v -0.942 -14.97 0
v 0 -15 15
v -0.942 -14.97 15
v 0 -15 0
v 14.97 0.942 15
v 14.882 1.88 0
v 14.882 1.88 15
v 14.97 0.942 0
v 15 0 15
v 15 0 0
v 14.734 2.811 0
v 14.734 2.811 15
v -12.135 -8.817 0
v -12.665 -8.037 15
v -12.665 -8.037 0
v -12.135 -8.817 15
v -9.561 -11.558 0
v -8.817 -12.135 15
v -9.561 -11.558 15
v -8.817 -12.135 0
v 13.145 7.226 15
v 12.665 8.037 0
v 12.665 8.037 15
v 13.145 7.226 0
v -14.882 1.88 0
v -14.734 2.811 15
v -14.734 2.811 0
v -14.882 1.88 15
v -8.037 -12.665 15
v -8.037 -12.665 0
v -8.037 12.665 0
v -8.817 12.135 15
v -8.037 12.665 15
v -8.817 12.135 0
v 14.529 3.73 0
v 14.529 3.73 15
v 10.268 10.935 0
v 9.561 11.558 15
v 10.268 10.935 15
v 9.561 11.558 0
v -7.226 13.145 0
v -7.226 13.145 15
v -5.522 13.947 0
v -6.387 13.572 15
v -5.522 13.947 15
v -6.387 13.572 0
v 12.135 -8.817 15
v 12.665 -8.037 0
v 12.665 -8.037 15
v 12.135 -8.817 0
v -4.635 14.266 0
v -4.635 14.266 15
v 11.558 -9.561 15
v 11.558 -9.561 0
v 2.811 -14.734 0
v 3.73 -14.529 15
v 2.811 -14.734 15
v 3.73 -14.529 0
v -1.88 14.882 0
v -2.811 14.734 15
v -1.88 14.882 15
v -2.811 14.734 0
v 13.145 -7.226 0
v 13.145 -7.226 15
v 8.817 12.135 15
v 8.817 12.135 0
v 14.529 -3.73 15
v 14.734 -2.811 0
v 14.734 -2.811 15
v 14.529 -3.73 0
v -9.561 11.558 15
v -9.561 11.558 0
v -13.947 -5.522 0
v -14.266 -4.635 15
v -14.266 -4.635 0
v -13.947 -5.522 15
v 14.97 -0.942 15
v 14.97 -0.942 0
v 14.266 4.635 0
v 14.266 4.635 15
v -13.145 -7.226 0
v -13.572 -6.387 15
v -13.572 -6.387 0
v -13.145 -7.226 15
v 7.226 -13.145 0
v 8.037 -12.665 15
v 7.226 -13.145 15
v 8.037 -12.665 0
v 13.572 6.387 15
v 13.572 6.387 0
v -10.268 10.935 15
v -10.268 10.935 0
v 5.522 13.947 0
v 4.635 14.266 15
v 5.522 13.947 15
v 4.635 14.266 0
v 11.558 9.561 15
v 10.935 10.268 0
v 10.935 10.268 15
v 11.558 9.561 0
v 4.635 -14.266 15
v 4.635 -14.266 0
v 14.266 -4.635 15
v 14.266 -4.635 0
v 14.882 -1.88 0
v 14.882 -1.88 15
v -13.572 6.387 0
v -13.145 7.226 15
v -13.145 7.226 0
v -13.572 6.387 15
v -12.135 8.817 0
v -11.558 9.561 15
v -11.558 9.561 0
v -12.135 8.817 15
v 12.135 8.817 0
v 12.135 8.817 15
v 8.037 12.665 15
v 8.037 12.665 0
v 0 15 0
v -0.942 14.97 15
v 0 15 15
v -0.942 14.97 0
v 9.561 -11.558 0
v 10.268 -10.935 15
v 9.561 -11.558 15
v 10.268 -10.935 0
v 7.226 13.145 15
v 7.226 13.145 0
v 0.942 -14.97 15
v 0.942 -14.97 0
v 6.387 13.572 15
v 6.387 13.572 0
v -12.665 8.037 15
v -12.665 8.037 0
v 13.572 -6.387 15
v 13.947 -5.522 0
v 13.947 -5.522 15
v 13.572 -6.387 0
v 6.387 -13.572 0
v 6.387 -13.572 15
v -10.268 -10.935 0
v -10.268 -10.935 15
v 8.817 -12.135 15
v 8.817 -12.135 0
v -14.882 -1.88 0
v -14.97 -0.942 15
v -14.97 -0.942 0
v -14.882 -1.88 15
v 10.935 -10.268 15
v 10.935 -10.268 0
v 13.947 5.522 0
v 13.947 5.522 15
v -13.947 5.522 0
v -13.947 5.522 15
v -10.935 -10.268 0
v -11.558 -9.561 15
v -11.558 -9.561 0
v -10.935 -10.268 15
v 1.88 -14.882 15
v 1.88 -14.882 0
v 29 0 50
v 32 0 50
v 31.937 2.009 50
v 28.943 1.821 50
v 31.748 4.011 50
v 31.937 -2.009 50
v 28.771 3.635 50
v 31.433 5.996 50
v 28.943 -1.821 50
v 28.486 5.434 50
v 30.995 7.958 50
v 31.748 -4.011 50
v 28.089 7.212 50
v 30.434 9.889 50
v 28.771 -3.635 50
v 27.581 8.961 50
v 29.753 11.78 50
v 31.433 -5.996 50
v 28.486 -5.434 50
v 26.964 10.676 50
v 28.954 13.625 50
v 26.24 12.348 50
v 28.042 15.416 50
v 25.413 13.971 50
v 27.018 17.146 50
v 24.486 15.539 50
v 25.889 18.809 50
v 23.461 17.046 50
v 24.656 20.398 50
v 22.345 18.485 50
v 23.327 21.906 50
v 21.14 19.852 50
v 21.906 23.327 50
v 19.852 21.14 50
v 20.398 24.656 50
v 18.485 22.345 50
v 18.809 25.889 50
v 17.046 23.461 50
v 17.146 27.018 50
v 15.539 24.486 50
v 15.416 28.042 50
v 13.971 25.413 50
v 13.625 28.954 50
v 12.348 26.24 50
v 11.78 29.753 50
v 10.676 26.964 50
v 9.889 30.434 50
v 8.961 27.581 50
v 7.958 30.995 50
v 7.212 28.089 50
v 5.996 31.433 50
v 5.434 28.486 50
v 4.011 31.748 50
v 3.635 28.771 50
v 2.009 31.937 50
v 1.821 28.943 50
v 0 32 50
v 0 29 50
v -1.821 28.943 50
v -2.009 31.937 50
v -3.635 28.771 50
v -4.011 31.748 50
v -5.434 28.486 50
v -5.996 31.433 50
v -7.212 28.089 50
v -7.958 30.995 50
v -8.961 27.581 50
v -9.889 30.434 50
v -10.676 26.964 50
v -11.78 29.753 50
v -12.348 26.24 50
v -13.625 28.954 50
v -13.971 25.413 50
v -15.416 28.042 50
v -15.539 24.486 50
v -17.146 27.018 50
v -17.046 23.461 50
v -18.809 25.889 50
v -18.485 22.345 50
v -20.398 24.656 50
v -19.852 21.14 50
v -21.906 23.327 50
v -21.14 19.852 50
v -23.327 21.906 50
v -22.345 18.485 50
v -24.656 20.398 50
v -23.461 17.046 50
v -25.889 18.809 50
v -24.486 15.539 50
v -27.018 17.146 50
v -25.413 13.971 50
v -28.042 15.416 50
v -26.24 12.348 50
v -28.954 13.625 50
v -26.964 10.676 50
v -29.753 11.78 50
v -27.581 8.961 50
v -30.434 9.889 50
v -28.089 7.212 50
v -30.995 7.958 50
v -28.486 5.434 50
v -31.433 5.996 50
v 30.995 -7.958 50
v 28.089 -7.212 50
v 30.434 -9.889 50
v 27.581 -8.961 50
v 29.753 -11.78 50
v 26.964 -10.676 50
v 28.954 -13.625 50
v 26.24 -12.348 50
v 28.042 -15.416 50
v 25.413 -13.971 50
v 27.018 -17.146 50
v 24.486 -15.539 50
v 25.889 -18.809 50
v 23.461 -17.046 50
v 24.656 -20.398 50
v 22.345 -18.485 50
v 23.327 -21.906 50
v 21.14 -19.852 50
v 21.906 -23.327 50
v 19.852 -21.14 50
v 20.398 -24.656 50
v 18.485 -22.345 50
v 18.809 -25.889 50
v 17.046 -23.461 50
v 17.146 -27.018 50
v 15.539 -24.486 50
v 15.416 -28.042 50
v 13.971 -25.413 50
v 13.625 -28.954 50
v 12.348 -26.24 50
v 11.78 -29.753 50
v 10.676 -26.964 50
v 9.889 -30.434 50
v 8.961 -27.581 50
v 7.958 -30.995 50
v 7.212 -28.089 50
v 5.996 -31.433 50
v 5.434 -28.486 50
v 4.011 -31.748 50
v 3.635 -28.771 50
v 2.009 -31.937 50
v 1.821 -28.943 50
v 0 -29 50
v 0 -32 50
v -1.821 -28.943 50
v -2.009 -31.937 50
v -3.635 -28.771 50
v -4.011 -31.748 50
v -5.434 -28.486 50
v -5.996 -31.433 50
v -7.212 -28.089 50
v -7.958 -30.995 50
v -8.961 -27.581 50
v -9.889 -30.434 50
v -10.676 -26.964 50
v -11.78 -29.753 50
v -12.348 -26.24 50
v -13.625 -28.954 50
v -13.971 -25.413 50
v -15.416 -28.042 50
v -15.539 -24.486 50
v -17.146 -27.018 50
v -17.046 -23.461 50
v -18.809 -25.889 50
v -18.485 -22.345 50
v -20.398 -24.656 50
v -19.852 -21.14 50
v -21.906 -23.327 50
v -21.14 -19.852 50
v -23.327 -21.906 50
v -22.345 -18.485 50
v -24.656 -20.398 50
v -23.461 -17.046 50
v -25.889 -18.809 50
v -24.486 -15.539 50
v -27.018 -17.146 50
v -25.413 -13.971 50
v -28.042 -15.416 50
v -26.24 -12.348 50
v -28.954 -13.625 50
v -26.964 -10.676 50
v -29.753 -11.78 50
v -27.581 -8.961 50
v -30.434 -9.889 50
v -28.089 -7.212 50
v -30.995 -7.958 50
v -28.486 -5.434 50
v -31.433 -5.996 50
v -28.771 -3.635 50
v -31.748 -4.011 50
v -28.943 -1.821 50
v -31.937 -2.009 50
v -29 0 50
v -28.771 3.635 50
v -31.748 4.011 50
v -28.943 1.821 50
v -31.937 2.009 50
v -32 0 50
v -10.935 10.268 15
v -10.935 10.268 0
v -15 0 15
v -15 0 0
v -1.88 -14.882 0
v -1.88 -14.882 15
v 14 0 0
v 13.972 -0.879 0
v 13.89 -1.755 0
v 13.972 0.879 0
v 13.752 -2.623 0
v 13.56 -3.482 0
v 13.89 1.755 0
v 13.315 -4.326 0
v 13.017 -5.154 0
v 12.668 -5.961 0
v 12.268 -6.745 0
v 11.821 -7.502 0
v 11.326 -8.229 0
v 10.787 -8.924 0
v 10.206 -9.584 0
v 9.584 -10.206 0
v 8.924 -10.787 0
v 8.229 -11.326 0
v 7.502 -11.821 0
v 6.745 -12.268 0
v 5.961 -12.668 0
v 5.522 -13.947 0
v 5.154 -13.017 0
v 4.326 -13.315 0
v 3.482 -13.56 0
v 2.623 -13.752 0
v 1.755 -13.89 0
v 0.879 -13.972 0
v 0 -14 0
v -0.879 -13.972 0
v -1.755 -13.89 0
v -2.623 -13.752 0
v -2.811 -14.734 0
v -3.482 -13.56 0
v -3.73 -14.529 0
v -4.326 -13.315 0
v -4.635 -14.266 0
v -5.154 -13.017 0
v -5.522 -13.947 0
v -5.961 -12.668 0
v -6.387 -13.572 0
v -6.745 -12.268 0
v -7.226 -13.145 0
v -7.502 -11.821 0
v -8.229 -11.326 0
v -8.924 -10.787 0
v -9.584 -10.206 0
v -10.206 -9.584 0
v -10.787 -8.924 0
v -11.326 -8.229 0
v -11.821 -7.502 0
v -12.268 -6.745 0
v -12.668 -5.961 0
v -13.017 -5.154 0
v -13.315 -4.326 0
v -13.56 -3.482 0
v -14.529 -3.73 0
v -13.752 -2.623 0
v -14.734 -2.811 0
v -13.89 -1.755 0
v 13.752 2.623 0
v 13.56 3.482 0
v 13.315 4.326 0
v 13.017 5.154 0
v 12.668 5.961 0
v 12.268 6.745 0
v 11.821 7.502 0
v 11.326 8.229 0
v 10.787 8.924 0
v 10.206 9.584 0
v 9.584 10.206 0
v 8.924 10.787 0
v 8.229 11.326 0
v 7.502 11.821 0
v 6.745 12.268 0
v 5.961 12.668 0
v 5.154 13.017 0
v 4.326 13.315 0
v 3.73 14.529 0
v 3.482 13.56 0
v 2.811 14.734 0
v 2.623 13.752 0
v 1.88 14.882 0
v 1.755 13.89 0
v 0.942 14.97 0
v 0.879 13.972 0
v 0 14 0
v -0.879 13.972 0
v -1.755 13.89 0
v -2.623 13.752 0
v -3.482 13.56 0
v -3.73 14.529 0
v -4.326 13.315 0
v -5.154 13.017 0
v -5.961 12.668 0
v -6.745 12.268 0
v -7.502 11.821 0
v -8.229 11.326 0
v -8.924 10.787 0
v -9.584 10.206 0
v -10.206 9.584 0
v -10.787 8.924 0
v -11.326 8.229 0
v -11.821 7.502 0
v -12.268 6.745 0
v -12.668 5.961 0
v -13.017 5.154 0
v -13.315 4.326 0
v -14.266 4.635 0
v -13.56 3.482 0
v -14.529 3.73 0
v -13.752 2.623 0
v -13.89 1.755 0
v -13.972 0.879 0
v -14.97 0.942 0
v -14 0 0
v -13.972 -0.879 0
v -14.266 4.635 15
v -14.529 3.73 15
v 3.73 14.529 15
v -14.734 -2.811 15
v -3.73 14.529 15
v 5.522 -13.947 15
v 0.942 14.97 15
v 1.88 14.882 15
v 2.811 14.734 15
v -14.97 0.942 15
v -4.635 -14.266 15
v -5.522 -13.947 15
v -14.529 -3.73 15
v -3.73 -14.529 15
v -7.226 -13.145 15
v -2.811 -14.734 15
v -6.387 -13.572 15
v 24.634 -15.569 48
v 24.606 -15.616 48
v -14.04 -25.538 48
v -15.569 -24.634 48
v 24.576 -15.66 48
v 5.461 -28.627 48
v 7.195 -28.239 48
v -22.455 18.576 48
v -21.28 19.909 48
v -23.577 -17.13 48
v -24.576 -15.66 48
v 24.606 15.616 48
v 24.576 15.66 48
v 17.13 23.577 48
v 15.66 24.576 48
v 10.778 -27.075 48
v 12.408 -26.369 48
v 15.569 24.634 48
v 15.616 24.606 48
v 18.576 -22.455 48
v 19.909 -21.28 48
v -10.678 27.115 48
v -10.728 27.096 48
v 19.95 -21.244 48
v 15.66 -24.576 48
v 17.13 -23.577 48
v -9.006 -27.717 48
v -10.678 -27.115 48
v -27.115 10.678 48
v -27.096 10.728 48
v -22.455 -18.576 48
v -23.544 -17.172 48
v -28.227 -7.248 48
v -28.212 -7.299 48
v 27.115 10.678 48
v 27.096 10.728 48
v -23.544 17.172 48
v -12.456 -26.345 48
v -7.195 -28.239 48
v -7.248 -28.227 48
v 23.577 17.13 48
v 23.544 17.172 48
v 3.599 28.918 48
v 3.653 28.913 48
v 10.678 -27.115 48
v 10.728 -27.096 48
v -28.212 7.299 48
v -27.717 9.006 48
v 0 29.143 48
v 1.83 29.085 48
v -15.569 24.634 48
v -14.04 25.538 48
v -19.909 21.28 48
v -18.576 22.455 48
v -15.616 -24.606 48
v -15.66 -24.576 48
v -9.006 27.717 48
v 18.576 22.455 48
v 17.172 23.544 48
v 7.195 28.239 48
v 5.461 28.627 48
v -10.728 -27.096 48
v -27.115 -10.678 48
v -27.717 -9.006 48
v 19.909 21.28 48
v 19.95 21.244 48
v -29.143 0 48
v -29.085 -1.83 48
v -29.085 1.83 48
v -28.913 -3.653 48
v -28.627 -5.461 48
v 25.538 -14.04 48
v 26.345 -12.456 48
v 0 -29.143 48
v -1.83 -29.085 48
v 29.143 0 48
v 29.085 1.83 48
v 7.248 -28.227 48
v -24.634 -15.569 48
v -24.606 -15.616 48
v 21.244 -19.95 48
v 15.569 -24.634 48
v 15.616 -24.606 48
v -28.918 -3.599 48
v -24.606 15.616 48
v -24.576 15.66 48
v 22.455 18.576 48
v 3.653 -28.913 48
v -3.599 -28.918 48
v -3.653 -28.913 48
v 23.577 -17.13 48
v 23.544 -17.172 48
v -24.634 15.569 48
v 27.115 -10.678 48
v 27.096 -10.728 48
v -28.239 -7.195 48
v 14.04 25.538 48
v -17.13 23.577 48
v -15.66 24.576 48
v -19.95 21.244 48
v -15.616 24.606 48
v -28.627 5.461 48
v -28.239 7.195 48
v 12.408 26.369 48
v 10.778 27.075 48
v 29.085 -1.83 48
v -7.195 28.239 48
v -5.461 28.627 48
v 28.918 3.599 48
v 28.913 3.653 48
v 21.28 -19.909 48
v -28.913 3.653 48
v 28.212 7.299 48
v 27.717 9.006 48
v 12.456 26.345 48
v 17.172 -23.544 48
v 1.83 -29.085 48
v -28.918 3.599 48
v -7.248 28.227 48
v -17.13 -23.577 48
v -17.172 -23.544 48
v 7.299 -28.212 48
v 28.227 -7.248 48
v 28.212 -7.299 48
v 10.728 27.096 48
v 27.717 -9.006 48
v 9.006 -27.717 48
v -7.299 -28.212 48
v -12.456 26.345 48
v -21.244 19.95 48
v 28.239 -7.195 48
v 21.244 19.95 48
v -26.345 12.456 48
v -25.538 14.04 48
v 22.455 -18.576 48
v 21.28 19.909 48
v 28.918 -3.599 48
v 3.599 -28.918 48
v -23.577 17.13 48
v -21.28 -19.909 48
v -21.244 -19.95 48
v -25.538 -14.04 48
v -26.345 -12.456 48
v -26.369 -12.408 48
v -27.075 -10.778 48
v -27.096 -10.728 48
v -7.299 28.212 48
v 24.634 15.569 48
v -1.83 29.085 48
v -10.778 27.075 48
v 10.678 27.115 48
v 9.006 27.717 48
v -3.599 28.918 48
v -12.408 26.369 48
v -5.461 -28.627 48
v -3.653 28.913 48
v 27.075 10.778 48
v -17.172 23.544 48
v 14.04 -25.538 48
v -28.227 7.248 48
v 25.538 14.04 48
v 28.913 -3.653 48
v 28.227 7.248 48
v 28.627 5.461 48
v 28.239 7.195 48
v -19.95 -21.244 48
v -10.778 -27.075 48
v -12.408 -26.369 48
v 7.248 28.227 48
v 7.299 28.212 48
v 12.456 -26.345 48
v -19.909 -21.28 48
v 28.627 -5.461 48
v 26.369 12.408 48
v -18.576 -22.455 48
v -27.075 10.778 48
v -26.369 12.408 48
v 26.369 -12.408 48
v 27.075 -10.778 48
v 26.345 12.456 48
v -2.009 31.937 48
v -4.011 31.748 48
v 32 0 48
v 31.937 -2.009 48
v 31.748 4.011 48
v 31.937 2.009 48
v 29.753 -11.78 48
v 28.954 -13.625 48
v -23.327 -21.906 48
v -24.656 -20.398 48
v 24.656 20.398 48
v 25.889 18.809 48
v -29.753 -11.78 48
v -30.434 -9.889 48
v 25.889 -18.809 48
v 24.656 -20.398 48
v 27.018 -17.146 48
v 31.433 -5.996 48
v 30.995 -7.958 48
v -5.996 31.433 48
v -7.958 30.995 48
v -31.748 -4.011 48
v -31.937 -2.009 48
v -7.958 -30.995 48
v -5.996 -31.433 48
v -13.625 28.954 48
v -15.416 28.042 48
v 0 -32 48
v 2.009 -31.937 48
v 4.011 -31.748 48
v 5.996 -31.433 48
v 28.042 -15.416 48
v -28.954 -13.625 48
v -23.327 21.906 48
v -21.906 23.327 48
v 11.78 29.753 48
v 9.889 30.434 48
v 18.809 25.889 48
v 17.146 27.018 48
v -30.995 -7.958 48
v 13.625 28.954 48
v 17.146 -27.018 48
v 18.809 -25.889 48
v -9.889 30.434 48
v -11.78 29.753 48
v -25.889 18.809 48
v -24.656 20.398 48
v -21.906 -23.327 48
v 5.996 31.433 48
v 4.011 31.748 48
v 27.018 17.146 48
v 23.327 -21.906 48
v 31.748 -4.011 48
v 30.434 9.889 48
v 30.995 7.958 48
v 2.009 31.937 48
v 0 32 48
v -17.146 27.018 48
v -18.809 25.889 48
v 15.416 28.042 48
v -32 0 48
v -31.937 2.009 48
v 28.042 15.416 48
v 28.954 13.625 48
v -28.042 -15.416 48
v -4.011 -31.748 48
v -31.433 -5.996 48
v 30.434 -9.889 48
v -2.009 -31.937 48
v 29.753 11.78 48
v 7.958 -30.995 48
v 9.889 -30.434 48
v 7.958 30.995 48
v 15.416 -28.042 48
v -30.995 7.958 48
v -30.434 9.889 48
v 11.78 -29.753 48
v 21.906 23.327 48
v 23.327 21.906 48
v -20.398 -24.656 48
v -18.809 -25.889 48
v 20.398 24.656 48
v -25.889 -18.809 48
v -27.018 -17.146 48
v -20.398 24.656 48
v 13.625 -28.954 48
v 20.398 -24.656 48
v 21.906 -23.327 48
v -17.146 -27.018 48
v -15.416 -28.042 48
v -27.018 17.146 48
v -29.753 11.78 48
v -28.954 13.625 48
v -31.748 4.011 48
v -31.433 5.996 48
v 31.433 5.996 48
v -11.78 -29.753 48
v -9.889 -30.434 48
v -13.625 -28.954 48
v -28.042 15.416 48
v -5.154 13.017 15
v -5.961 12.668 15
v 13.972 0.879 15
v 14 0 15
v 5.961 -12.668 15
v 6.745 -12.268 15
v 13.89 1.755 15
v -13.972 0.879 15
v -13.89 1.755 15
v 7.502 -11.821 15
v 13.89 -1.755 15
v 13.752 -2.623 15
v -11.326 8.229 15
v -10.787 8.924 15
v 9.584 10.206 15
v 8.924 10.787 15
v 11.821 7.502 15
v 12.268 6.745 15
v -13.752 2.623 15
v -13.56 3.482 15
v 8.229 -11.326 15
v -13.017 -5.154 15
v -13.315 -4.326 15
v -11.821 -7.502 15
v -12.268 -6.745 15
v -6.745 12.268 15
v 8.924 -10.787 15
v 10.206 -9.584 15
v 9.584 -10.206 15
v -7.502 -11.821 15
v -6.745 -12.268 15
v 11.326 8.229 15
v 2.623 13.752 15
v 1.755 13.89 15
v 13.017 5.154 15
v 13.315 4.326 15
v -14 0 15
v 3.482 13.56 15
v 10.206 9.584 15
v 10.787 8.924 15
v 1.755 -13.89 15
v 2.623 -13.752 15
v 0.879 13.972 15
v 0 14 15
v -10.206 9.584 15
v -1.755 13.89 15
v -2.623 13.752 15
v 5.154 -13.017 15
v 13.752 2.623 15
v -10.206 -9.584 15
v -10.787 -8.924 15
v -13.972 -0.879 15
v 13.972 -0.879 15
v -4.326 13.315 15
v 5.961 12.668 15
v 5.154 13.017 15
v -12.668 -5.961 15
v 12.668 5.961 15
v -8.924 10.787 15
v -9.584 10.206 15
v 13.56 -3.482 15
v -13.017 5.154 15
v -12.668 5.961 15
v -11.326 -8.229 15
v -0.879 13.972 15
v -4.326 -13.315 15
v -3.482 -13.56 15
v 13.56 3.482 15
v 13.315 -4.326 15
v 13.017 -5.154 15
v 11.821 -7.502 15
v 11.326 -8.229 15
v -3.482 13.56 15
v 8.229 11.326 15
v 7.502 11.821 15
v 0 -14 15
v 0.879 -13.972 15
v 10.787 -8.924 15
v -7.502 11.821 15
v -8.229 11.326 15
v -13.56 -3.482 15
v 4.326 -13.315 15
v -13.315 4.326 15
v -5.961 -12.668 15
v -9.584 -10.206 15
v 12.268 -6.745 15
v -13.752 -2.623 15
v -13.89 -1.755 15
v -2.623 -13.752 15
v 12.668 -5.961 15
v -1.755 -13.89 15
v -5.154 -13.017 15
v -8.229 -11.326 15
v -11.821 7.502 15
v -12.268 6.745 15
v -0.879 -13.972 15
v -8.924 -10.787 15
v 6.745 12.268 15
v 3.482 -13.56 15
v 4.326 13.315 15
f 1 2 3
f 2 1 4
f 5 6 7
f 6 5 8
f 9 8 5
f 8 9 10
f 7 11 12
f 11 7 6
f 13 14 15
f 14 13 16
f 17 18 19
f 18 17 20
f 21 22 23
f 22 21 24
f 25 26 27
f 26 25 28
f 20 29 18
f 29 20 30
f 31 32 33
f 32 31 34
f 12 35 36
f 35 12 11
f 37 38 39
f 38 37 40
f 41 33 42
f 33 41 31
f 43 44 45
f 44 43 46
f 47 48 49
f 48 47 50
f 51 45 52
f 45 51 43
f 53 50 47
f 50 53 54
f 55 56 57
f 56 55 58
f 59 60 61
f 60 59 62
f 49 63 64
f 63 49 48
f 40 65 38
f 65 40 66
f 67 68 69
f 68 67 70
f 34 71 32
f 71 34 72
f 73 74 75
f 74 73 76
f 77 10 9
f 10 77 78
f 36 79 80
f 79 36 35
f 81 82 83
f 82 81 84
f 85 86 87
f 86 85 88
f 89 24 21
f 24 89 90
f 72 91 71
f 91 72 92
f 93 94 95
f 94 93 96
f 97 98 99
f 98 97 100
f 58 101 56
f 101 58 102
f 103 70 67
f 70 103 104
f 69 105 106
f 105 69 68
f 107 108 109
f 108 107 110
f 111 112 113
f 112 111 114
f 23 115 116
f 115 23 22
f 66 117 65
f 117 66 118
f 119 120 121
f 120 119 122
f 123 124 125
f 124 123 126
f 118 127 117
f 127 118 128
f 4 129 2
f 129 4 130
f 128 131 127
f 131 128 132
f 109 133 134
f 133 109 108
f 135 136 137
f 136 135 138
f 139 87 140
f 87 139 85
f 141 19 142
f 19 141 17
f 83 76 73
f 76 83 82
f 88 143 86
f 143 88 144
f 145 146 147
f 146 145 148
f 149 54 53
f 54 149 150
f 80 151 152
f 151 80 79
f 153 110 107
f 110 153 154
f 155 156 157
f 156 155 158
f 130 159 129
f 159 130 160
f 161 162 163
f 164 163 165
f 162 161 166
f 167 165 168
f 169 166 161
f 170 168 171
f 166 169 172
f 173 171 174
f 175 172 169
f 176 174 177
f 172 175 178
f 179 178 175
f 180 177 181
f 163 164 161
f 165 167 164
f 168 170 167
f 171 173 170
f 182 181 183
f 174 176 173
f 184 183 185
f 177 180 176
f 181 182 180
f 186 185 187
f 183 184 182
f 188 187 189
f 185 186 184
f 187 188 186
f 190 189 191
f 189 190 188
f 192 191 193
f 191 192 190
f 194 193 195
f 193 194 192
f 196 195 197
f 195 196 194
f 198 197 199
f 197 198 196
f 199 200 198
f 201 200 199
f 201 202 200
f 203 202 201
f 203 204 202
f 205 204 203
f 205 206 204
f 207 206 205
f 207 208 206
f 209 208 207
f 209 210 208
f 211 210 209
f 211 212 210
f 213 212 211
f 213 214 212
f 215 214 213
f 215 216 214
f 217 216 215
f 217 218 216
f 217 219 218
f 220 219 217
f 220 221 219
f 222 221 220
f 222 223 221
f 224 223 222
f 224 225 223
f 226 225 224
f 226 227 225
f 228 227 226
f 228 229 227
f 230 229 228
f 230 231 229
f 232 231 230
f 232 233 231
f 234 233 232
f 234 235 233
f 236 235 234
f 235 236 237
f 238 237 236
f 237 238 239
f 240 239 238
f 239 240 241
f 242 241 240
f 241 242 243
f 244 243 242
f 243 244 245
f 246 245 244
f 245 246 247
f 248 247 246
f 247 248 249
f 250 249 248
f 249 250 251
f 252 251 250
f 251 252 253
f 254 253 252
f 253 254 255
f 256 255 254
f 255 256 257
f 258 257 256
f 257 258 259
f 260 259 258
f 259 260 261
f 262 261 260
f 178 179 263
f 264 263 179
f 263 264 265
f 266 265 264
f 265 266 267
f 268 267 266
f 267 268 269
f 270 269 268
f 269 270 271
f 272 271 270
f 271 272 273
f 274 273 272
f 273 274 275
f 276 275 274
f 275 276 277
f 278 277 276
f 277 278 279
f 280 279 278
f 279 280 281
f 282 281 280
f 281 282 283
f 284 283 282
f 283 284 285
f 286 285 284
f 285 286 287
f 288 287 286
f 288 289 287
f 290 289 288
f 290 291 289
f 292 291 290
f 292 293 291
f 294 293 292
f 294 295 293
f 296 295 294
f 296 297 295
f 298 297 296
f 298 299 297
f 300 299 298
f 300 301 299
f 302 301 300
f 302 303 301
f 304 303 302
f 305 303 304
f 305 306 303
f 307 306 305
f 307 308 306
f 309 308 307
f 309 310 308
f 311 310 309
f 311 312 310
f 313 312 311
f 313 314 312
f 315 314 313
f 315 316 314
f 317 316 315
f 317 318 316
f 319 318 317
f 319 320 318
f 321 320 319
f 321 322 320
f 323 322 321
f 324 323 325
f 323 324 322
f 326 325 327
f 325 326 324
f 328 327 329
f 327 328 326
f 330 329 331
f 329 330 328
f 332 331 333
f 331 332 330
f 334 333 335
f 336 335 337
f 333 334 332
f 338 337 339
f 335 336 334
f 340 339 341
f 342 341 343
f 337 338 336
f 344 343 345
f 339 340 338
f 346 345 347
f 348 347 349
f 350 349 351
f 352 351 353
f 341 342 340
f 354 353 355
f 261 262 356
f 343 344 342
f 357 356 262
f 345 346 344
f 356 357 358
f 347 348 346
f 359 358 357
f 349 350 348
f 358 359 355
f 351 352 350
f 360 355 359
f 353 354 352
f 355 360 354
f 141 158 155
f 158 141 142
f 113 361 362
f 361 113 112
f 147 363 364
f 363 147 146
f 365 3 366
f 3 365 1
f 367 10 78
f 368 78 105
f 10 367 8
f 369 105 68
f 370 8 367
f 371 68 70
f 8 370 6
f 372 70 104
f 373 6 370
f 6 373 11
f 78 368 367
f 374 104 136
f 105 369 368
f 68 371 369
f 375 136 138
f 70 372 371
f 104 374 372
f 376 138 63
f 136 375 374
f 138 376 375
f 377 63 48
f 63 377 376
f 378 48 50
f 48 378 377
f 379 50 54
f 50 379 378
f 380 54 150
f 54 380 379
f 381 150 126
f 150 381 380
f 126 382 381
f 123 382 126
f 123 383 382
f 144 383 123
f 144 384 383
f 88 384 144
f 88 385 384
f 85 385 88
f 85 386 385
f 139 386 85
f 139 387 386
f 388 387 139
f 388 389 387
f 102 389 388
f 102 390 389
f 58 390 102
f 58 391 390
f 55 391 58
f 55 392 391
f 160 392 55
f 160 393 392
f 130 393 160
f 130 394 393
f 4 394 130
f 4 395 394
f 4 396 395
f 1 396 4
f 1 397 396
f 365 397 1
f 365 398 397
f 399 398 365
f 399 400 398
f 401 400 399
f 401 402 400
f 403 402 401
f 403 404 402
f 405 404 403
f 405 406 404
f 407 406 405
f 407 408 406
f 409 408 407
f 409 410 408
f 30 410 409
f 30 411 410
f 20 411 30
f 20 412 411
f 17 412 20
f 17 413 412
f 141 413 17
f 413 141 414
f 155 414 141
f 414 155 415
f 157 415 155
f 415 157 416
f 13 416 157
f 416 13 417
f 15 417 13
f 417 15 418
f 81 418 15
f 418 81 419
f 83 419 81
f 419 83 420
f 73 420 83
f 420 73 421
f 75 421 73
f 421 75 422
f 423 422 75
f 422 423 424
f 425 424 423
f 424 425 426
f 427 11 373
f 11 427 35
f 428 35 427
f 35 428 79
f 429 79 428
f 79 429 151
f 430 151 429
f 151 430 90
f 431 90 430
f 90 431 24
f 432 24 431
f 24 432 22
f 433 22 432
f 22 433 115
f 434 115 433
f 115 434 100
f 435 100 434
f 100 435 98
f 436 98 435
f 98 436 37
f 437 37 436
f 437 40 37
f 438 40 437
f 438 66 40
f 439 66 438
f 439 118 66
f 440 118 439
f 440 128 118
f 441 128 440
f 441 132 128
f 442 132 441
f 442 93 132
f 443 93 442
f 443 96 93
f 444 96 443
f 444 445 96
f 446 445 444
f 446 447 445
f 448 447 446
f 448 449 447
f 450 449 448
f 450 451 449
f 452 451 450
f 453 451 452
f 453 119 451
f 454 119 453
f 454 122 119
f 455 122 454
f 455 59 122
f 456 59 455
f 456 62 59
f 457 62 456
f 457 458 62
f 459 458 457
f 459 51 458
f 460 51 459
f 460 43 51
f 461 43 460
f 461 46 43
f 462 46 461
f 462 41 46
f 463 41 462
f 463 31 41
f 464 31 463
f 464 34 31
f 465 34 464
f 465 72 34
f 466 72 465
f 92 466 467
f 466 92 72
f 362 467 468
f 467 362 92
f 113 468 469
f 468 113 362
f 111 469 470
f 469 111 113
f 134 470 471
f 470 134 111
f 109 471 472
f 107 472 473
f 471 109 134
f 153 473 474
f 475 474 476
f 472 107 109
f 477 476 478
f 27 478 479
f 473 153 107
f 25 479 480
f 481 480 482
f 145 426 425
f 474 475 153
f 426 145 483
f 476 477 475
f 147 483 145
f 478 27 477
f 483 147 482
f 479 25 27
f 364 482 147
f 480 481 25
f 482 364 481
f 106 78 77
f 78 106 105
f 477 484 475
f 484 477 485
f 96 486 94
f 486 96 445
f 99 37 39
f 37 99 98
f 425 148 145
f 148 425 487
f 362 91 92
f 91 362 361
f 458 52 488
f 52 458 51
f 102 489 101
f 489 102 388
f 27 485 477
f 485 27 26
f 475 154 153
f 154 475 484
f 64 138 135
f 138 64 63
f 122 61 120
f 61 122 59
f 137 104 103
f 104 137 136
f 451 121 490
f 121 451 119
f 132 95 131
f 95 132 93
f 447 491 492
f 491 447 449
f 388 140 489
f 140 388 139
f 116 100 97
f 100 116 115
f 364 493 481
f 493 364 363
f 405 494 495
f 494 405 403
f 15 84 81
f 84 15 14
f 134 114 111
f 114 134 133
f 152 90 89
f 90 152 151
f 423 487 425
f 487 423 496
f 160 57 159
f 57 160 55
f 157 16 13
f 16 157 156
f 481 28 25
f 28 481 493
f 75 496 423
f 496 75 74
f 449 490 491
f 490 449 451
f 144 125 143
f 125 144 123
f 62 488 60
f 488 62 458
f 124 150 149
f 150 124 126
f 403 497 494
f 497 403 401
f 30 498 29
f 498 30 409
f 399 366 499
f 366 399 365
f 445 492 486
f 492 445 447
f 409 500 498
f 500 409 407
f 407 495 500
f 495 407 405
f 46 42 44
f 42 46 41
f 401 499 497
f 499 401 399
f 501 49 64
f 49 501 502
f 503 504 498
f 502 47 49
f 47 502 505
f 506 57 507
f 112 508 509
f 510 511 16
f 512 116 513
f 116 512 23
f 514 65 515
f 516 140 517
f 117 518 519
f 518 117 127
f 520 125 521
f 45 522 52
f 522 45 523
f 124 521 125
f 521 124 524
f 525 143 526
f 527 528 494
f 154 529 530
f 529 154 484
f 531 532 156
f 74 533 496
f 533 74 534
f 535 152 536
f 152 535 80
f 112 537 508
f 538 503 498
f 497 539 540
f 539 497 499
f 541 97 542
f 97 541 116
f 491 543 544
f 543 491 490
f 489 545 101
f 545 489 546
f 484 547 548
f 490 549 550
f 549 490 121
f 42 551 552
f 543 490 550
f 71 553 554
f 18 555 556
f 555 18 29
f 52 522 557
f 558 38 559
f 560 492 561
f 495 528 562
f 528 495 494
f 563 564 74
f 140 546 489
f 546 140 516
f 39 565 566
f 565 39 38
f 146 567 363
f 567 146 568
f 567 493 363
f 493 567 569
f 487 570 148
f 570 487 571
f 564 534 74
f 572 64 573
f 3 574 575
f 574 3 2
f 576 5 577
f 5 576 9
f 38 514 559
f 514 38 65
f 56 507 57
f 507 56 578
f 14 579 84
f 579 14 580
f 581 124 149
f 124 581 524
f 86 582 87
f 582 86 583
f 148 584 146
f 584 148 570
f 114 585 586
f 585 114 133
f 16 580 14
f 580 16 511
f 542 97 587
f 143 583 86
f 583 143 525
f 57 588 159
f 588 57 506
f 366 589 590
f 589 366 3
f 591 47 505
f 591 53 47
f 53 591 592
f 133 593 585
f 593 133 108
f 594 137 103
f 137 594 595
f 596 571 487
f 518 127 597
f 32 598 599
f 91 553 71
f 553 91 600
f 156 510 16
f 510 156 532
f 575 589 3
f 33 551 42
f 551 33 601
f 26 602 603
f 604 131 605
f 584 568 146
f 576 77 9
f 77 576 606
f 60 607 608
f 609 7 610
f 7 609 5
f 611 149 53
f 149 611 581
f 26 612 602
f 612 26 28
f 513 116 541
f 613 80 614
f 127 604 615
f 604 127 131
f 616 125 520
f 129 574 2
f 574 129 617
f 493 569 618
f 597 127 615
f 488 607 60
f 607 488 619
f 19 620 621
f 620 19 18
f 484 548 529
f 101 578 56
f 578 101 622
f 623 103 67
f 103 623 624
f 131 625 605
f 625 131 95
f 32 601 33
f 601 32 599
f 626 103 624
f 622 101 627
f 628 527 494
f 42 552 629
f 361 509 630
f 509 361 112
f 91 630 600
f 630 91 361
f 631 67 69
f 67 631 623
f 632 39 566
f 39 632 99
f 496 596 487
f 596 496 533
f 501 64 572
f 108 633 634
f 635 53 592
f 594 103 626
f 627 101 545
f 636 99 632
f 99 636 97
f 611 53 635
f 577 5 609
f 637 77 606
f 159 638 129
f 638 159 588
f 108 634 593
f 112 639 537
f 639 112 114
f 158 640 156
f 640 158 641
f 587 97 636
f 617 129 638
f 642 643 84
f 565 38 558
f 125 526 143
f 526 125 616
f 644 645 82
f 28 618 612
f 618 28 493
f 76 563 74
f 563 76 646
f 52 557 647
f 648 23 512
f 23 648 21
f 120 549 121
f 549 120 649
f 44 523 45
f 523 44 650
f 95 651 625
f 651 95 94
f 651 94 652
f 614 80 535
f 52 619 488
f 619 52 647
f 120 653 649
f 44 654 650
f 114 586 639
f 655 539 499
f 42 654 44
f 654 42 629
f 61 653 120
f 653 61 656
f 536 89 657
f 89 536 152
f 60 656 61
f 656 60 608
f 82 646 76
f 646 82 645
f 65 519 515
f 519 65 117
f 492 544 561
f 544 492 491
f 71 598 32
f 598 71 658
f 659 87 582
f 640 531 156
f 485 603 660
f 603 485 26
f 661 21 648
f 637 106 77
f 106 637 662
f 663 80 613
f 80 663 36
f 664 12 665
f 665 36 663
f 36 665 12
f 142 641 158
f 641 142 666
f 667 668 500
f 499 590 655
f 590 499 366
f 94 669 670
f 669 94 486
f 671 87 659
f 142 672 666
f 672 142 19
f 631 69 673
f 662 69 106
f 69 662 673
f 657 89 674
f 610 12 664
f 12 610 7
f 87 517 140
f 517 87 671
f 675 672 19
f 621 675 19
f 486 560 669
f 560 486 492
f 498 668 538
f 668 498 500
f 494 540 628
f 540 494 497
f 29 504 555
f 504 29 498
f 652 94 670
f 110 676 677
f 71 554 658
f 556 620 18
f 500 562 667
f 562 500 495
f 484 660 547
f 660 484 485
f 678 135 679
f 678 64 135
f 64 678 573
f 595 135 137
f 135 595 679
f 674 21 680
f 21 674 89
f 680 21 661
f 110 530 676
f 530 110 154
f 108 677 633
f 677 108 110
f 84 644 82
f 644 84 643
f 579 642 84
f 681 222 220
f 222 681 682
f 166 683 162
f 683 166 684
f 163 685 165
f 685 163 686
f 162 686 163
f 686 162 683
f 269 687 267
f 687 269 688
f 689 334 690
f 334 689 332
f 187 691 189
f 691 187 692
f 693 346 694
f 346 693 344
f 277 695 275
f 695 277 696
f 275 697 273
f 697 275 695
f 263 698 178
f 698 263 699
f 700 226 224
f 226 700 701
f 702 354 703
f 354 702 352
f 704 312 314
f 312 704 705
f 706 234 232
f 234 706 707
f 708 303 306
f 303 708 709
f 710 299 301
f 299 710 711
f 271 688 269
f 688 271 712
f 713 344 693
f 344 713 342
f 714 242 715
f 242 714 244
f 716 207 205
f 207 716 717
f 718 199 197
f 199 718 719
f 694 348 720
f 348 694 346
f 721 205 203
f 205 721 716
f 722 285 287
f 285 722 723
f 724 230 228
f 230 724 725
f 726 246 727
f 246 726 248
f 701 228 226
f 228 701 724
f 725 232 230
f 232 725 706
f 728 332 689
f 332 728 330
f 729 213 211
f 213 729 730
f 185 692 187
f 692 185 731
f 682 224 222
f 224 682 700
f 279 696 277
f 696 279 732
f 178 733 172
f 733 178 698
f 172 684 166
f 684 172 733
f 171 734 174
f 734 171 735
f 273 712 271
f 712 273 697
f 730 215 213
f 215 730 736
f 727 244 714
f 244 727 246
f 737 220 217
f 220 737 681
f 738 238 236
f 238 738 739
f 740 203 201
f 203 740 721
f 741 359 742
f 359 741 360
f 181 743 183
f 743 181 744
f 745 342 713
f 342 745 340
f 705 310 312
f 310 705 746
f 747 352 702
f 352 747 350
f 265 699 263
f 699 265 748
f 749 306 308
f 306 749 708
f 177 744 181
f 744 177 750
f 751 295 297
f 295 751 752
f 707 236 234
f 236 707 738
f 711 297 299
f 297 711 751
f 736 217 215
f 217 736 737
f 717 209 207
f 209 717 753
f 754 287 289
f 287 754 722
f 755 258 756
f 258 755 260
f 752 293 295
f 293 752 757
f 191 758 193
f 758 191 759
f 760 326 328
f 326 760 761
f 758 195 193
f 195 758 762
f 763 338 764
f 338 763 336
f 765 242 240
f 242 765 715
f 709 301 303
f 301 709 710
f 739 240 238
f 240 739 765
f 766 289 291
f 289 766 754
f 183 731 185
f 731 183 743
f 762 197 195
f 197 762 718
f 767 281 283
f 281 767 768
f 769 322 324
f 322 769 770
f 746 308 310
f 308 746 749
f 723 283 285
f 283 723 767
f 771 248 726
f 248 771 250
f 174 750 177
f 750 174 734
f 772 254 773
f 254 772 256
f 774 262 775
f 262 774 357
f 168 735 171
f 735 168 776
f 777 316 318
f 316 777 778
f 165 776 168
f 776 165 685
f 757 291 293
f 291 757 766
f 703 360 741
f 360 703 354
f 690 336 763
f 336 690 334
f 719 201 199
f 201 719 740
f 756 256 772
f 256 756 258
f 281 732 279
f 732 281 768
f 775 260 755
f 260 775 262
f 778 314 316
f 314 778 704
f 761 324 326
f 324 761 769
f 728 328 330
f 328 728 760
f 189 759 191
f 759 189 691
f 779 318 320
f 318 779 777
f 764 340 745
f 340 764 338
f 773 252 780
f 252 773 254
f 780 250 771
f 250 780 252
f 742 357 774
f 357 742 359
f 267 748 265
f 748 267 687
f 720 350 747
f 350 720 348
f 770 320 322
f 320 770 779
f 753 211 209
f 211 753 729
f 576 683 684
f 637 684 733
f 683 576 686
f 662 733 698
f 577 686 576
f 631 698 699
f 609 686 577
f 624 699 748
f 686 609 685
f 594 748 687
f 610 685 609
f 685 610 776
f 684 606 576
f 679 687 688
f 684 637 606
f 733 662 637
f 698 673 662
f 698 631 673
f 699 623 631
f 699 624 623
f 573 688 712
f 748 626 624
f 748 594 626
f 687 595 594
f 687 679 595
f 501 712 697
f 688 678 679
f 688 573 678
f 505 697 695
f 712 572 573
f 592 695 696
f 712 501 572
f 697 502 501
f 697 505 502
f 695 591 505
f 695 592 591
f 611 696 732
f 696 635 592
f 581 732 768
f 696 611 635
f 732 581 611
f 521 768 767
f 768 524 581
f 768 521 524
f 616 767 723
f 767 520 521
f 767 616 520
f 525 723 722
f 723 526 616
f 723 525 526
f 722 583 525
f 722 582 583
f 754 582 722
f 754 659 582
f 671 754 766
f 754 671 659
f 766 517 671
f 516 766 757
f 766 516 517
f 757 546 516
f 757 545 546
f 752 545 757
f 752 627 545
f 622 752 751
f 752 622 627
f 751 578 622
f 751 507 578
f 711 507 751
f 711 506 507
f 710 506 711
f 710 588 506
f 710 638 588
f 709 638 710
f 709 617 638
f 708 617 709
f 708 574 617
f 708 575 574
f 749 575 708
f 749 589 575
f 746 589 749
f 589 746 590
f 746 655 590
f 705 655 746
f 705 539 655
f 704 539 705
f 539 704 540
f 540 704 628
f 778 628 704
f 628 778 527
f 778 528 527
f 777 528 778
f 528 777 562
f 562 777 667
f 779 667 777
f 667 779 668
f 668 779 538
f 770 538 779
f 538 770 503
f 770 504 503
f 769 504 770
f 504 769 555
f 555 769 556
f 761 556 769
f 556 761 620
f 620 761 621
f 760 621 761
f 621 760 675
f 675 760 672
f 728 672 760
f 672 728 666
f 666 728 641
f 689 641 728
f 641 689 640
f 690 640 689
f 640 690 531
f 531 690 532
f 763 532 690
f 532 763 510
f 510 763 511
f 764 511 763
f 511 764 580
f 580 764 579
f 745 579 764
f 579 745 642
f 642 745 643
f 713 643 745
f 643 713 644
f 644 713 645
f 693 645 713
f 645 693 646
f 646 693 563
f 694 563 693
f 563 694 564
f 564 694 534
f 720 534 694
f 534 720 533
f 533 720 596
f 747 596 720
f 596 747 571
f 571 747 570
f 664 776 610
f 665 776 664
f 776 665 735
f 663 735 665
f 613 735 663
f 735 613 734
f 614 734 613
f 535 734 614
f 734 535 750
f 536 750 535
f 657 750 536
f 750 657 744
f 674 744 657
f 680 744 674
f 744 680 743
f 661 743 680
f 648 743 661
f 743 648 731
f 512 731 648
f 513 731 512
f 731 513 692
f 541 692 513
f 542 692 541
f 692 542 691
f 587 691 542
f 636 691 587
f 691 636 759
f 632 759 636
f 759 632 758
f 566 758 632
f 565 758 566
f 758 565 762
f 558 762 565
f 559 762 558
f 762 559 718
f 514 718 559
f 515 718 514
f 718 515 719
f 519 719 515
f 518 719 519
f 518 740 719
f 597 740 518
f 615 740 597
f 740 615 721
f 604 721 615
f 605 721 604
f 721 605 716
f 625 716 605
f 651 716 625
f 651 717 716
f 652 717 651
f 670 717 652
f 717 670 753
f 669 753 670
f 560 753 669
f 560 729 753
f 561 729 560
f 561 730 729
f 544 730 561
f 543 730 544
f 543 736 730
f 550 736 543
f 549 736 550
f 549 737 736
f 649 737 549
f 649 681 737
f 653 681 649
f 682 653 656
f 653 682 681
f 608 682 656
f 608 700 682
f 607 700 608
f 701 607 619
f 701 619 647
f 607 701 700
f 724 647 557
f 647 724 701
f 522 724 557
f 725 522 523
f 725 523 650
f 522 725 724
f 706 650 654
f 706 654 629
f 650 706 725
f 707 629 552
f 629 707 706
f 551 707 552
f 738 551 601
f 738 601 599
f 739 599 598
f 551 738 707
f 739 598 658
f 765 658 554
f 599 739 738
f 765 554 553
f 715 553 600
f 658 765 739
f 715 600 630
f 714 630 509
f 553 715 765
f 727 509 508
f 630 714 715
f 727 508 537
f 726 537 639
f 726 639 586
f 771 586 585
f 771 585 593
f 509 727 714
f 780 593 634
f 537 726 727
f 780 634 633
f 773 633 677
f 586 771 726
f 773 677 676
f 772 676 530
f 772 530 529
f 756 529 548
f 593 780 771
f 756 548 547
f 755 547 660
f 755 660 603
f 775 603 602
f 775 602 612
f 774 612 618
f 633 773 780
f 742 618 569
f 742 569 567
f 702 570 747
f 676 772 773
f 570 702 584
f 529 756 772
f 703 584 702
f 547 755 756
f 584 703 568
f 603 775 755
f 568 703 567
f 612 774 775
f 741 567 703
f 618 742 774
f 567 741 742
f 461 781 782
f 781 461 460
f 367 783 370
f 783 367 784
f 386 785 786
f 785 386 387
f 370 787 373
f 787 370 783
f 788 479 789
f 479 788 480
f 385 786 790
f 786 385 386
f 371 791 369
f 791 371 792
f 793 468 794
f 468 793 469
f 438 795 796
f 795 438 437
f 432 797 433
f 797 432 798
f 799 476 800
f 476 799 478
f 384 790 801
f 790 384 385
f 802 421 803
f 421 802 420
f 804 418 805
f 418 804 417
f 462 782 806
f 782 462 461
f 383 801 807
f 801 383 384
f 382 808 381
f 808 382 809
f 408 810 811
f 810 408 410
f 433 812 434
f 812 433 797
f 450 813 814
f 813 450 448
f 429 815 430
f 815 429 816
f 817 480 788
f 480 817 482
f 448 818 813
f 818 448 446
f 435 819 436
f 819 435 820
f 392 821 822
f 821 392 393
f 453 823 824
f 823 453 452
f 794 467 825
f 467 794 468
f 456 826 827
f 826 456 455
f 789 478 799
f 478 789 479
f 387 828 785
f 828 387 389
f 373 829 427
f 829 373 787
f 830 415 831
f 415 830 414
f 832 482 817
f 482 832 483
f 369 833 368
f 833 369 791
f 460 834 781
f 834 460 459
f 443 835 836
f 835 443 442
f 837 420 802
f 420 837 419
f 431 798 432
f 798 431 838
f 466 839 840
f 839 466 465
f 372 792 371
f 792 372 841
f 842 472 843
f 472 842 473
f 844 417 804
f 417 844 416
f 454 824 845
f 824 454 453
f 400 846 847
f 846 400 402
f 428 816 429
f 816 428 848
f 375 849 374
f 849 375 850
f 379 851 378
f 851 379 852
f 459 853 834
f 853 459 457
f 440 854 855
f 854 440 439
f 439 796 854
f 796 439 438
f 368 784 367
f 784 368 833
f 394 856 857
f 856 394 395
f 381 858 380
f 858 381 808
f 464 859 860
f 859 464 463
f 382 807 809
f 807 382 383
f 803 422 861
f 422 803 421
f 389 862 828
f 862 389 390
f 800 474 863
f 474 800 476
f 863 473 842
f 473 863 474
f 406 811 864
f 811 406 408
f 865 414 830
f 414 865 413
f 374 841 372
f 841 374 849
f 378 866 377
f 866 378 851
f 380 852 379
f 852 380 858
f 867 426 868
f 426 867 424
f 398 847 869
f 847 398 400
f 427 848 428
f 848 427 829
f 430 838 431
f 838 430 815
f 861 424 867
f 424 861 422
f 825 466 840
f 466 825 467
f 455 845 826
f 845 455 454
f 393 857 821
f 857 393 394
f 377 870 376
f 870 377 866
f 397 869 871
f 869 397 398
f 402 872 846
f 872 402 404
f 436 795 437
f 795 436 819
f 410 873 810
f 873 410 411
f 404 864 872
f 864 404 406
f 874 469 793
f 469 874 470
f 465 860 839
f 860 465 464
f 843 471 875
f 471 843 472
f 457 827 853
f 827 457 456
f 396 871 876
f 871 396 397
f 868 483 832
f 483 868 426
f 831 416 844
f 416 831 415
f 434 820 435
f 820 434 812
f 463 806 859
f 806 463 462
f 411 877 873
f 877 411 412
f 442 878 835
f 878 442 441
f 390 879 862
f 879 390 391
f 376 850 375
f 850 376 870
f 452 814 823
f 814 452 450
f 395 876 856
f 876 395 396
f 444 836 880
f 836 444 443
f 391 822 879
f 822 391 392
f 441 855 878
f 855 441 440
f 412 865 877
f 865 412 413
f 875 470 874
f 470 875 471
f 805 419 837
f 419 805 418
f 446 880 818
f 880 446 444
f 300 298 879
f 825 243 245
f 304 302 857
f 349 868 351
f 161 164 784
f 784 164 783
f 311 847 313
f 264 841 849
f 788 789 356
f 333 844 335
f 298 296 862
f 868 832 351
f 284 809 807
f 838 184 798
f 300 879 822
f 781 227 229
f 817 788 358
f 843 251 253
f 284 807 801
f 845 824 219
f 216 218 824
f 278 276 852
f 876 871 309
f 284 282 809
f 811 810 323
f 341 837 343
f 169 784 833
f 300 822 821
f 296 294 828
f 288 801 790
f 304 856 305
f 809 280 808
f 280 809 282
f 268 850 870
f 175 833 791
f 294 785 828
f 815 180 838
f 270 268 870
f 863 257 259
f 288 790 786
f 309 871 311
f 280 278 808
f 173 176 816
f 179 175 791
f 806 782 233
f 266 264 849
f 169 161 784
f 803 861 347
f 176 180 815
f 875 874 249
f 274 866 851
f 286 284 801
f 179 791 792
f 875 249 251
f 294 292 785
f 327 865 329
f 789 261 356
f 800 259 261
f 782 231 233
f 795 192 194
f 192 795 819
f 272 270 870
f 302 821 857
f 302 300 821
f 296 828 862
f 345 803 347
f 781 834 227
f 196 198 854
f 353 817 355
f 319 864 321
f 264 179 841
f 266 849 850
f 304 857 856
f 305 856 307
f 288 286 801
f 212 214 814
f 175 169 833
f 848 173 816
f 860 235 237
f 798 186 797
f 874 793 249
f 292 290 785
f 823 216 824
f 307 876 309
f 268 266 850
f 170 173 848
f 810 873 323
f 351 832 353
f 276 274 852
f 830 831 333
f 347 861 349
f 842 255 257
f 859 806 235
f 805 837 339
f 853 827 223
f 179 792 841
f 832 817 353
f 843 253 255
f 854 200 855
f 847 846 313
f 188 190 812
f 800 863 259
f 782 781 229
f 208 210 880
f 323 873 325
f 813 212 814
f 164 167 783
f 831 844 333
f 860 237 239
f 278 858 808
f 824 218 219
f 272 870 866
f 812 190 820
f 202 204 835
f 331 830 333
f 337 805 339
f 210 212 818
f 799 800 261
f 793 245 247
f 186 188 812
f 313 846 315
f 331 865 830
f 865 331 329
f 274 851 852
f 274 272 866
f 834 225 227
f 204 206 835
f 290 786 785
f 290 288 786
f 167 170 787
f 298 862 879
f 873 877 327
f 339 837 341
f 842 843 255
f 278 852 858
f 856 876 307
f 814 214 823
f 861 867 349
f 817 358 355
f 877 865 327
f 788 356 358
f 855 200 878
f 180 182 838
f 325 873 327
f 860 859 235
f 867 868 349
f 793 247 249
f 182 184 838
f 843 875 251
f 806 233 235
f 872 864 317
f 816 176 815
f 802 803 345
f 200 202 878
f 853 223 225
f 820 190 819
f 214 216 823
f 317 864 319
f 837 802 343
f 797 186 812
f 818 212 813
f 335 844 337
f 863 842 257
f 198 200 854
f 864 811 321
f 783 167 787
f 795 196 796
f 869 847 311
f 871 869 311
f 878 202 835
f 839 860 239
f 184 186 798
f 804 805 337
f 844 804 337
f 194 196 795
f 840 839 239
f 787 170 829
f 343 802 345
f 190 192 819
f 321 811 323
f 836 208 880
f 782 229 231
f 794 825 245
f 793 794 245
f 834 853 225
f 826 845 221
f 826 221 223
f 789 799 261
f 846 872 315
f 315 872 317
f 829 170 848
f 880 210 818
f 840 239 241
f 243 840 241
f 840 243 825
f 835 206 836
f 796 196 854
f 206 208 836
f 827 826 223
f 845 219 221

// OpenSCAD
// ID: 30.71
// OD: 36.47
// big ID: 50
// tube in mouth: 15
// overall height: 50

OVERALL_HEIGHT = 50;
EXIT_DIAMETER = 30;
EXIT_LENGTH = 15;
ENTRANCE_DIAMETER = 60;
WALL_THICKNESS = 2;

$fn=100;

difference(){
    union(){
        cylinder(r=EXIT_DIAMETER/2,h=OVERALL_HEIGHT);
        
        translate([0,0,EXIT_LENGTH]){
            cylinder(r1=EXIT_DIAMETER/2, r2=ENTRANCE_DIAMETER/2, h=OVERALL_HEIGHT-EXIT_LENGTH);
        }
        
        translate([0,0,OVERALL_HEIGHT-WALL_THICKNESS]){
            //cube([ENTRANCE_DIAMETER,ENTRANCE_DIAMETER,WALL_THICKNESS]);
            cylinder(r=(ENTRANCE_DIAMETER+(WALL_THICKNESS*2))/2,h=WALL_THICKNESS);
        }
    }
    
    cylinder(r=(EXIT_DIAMETER/2) - (WALL_THICKNESS/2),h=OVERALL_HEIGHT);
    
    translate([0,0,EXIT_LENGTH]){
        cylinder(r1=(EXIT_DIAMETER/2) - (WALL_THICKNESS/2), r2=(ENTRANCE_DIAMETER/2) - (WALL_THICKNESS/2), h=OVERALL_HEIGHT-EXIT_LENGTH);
    }
}
